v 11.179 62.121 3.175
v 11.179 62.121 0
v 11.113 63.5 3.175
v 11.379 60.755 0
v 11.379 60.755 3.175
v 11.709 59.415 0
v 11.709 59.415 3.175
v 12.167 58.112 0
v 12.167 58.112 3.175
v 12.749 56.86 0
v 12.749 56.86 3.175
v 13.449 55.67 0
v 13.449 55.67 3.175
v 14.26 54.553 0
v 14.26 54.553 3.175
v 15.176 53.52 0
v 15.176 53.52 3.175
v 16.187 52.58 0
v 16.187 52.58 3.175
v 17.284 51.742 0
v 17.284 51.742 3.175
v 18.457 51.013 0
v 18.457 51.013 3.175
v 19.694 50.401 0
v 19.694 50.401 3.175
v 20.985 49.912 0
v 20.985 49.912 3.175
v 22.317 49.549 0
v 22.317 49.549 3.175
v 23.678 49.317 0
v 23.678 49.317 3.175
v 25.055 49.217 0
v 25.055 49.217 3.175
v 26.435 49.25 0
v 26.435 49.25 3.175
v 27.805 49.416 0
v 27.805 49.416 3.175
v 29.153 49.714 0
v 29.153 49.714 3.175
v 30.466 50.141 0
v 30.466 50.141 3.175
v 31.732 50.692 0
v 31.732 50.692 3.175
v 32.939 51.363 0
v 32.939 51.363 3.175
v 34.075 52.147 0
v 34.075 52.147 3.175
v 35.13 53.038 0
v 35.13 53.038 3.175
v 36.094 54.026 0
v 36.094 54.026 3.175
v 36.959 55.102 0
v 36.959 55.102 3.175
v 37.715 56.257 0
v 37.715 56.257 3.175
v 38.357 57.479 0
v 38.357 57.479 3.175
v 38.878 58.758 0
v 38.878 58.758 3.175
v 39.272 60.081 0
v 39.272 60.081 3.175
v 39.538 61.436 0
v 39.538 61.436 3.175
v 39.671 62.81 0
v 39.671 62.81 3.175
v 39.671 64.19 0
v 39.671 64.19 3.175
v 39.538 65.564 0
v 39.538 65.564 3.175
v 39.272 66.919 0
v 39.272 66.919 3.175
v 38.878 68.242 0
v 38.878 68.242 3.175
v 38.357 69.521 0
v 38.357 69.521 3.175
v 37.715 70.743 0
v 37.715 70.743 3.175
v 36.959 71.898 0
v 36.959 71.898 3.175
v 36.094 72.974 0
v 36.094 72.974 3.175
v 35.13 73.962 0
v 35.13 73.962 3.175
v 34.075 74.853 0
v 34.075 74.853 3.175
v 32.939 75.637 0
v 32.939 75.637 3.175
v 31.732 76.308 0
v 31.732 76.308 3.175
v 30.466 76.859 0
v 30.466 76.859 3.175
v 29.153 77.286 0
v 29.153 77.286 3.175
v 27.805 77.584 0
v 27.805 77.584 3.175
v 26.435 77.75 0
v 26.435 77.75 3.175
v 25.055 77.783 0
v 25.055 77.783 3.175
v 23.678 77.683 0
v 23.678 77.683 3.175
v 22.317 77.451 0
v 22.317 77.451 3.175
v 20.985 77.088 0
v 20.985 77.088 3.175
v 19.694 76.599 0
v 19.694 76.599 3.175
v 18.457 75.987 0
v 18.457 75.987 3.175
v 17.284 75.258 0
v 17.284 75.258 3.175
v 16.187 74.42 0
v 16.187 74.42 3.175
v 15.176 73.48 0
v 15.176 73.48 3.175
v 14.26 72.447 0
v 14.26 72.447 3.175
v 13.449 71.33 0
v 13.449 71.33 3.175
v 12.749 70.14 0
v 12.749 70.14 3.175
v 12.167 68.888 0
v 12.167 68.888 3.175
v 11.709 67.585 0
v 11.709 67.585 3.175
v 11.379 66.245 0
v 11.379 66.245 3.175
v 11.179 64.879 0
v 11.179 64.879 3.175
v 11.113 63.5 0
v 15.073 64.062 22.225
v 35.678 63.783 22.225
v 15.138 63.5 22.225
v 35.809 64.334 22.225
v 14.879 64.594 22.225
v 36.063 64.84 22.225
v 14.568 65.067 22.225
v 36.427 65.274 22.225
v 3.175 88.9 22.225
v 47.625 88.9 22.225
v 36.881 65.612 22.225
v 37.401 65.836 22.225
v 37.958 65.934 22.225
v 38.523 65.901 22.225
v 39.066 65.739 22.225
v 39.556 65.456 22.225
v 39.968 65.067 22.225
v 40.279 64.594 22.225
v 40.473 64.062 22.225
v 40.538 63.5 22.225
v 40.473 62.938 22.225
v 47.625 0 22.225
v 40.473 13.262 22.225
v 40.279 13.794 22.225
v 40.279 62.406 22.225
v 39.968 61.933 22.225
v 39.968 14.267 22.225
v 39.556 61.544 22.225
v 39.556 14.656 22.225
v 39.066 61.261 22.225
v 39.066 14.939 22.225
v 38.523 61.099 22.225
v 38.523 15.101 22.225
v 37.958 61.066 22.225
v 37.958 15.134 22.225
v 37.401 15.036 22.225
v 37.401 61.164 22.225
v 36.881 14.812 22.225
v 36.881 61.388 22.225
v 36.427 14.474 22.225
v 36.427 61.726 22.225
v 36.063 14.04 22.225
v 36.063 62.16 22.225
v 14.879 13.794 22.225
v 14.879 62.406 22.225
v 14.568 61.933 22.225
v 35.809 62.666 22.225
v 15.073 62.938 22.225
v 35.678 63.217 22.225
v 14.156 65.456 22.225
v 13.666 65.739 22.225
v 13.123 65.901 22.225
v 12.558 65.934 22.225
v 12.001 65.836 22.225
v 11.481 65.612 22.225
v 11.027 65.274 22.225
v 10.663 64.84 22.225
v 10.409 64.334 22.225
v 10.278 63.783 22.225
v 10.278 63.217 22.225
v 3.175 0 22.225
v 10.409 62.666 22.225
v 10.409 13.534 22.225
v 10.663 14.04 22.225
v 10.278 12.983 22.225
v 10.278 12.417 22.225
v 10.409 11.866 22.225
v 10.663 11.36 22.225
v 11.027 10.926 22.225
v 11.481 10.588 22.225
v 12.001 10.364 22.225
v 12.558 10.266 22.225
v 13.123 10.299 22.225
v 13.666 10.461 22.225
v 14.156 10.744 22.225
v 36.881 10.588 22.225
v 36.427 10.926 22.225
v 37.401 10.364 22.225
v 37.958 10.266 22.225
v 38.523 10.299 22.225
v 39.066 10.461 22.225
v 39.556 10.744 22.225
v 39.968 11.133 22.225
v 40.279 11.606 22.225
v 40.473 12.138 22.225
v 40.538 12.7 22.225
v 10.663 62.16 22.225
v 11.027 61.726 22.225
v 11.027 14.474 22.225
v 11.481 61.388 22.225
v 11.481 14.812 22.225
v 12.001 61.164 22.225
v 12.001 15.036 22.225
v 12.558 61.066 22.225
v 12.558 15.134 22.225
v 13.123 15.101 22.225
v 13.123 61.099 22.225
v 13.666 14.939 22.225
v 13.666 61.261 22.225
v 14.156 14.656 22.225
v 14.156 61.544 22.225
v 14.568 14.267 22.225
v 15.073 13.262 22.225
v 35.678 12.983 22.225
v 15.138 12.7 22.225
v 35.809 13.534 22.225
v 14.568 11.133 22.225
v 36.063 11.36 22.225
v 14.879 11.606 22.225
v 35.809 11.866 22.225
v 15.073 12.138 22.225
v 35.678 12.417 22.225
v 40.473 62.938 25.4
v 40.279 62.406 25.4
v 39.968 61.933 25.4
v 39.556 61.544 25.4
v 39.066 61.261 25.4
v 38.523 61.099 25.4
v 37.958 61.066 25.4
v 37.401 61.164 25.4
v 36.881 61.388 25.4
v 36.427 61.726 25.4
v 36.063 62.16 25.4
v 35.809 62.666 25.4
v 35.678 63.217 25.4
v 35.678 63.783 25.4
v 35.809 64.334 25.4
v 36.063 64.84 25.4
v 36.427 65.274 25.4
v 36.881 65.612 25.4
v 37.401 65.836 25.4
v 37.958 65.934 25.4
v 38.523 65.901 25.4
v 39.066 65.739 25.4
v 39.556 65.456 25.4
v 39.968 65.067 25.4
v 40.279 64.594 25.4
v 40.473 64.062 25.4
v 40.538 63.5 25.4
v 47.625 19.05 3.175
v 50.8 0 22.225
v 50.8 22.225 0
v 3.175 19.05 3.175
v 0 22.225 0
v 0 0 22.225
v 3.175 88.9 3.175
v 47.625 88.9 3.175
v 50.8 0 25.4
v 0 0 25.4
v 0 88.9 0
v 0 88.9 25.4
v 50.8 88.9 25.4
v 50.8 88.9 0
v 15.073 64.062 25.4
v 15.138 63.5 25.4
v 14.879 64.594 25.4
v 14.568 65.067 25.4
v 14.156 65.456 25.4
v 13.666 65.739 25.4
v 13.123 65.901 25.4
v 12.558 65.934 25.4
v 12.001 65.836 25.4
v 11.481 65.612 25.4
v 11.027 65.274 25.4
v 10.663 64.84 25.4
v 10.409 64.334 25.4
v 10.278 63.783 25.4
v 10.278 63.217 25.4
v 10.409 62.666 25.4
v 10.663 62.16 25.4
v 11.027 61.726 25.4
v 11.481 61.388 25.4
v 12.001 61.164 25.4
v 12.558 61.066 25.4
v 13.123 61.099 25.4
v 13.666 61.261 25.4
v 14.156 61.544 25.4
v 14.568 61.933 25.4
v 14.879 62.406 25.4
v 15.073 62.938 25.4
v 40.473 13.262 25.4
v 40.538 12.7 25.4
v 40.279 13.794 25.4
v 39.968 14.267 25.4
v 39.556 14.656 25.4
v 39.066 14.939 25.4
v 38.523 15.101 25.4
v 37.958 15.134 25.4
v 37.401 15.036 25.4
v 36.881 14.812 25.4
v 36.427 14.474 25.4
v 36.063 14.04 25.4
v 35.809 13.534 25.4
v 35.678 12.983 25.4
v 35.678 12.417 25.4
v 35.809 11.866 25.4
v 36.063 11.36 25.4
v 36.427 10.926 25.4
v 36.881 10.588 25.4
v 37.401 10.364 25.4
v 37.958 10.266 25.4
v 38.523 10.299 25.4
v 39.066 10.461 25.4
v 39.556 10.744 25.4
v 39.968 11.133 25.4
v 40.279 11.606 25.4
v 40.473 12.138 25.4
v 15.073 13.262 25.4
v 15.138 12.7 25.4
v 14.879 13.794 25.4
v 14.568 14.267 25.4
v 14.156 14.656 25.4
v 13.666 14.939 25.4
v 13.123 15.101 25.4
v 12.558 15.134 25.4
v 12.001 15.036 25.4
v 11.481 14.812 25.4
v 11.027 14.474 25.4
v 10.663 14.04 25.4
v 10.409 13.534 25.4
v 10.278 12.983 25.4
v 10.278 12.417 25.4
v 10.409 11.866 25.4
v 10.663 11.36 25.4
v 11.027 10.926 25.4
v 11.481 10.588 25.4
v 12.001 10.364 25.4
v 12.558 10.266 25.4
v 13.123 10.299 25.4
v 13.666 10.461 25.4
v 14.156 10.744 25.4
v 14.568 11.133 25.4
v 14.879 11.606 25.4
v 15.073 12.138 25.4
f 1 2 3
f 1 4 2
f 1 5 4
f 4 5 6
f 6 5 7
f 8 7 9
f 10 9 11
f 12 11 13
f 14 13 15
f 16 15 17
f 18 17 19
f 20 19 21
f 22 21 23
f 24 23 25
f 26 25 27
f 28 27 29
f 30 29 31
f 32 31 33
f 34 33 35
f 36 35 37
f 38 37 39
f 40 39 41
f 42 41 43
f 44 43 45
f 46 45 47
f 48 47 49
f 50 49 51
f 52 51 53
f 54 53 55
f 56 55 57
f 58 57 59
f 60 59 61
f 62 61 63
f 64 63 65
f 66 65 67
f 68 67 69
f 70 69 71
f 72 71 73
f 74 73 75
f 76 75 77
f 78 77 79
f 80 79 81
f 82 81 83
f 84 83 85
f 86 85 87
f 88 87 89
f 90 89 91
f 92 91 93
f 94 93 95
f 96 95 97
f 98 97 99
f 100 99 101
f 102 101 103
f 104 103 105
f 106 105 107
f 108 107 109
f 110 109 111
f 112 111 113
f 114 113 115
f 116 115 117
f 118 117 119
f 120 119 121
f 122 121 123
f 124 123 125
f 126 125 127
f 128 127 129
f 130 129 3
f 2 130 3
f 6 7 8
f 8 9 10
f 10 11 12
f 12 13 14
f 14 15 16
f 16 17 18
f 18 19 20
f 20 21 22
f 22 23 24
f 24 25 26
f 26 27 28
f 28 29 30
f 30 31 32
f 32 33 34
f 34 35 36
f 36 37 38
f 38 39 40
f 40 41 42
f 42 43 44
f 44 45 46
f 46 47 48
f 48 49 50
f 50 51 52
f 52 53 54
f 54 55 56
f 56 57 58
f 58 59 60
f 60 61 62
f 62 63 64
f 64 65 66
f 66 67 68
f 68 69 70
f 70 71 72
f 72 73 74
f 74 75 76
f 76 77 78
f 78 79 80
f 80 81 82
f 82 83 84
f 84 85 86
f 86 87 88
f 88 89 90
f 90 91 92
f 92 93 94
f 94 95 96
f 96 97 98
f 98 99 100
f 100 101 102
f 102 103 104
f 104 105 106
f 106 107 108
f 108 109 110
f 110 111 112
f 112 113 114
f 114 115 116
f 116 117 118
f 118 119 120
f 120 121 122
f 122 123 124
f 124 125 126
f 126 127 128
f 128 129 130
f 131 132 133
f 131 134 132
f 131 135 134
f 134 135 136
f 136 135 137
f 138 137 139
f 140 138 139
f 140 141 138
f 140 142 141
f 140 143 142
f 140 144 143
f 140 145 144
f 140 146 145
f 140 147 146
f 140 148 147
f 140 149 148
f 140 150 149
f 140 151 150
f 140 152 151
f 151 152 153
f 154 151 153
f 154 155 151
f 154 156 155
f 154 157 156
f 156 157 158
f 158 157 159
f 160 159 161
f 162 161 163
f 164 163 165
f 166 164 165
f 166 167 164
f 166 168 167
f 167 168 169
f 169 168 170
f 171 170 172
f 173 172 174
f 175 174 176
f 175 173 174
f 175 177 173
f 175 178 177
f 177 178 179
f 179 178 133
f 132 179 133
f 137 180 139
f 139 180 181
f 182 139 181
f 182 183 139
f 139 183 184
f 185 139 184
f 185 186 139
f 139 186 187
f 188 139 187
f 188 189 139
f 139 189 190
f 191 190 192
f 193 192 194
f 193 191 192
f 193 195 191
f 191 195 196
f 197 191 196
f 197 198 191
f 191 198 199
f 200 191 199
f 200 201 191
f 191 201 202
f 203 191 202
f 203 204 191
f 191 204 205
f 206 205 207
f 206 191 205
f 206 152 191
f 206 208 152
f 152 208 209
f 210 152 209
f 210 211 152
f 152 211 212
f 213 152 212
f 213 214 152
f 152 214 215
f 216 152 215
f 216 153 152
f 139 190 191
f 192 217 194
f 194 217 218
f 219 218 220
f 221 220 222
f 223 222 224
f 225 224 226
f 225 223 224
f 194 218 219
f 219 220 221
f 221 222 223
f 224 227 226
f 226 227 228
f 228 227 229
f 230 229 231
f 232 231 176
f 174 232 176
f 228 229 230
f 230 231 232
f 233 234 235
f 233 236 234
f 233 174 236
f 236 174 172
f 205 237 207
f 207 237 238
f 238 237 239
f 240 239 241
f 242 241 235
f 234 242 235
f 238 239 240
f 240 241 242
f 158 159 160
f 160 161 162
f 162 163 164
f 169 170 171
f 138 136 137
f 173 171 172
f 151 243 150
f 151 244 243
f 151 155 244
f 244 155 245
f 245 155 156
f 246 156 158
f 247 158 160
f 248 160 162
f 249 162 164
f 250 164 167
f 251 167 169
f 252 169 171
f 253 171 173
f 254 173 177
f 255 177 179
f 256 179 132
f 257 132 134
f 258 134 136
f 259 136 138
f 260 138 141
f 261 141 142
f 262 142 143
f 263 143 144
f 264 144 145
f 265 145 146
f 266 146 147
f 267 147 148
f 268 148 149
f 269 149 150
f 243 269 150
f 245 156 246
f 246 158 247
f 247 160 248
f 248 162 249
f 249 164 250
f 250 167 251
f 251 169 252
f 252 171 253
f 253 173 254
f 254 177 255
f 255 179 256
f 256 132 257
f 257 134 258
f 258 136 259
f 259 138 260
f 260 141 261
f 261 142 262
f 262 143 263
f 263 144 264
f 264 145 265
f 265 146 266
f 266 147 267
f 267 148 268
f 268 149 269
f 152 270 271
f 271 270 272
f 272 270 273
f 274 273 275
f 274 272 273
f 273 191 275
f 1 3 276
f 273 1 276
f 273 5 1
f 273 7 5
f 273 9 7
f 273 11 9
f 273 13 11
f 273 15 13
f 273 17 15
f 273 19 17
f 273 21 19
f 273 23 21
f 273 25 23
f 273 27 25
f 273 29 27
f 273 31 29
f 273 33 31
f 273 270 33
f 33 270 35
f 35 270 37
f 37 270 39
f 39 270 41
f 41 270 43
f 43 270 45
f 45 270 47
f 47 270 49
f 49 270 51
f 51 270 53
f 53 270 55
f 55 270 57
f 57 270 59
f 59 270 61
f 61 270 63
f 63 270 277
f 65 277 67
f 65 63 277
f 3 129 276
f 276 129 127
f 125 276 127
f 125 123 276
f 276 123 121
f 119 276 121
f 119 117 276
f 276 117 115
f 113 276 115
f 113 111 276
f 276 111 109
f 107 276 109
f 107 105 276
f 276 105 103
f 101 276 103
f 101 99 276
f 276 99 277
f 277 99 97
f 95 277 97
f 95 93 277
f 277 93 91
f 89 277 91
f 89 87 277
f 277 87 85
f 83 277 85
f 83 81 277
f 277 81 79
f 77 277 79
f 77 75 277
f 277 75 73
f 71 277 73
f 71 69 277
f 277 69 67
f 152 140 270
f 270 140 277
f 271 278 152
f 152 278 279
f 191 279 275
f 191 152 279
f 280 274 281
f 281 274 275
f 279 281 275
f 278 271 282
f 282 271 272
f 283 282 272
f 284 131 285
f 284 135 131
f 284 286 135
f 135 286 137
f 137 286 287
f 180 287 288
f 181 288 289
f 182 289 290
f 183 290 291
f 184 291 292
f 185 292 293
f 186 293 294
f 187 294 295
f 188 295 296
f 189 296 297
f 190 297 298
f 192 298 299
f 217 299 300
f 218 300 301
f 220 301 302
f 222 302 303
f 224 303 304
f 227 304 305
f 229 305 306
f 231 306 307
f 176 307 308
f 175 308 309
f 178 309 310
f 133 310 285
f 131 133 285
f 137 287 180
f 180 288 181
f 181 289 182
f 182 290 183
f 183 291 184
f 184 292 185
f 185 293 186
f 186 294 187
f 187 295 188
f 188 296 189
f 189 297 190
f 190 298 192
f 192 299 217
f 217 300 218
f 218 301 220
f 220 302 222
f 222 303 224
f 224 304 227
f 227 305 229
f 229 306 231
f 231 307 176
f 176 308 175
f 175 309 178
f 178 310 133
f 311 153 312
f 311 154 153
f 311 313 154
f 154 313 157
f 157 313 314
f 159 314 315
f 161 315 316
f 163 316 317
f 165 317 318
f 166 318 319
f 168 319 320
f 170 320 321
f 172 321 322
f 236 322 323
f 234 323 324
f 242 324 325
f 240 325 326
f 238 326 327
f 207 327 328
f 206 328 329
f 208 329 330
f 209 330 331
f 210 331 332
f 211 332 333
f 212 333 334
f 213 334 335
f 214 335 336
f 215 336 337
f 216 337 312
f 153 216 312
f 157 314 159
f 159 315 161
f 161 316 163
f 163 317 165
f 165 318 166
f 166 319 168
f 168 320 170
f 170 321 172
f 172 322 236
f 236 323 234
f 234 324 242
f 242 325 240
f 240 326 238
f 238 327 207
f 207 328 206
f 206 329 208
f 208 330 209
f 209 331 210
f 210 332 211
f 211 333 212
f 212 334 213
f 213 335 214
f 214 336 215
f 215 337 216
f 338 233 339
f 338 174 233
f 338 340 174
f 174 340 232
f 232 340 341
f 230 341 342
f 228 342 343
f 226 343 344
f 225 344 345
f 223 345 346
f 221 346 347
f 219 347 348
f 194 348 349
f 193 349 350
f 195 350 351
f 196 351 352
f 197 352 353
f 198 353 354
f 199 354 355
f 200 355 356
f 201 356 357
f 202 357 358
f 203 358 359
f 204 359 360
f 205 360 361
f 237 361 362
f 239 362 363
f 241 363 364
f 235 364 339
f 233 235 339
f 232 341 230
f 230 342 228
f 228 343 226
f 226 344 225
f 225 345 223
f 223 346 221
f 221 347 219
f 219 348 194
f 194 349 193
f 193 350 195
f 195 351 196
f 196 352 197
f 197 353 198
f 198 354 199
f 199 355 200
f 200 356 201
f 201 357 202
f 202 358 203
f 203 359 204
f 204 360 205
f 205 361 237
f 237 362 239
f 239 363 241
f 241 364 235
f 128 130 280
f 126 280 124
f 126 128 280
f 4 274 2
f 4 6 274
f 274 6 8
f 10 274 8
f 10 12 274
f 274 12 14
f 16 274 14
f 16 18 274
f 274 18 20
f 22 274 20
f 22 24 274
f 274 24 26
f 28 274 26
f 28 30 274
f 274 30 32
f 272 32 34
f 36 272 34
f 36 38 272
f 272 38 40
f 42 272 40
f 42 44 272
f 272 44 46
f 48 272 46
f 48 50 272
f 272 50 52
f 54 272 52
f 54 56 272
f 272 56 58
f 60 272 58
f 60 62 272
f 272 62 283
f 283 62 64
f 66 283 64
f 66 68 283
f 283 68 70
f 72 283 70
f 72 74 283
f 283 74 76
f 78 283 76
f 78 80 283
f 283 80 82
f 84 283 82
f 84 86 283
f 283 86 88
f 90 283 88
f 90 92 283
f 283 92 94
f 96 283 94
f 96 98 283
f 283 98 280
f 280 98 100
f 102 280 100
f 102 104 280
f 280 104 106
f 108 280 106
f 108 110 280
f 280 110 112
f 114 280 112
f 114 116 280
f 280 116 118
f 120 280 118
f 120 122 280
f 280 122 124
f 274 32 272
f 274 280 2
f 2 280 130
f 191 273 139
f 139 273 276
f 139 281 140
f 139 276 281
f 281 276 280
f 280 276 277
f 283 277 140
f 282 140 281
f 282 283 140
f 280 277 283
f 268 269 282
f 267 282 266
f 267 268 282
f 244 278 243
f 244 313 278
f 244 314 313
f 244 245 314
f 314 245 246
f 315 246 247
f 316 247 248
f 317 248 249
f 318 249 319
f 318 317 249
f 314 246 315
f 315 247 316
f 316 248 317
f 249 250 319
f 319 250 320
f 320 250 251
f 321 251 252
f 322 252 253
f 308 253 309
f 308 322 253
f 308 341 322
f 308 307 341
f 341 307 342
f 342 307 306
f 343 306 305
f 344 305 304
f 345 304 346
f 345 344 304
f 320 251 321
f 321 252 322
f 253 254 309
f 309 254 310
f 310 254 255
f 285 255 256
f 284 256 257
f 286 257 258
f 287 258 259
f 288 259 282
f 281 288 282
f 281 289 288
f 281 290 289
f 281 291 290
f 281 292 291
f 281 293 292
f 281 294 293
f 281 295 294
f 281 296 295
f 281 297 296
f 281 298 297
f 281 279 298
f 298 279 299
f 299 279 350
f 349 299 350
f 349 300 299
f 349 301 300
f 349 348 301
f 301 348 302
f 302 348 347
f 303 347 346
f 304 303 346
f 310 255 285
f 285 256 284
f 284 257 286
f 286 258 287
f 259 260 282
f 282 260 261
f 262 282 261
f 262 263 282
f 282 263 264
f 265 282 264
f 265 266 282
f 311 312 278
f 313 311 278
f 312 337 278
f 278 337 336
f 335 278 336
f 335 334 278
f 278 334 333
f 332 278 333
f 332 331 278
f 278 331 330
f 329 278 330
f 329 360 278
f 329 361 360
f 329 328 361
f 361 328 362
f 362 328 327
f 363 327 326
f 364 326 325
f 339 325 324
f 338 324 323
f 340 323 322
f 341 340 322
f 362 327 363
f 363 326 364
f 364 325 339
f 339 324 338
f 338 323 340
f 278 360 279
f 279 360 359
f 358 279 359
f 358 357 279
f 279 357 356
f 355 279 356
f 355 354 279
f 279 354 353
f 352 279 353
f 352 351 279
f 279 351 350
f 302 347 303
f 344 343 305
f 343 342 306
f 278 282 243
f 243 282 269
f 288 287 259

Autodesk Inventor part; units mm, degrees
ref_plane "YZ Plane" through (0, 0, 0) normal (1, 0, 0) x (0, 1, 0)
ref_plane "XZ Plane" through (0, 0, 0) normal (0, 1, 0) x (-1, 0, 0)
ref_plane "XY Plane" through (0, 0, 0) normal (0, 0, 1) x (1, 0, 0)
sketch "Sketch1" plane through (0, 0, 0) normal (0, 0, 1) x (1, 0, 0)
  line L0 (0, 0) -> (50.8, 0)
  line L1 (50.8, 0) -> (50.8, 88.9)
  line L2 (50.8, 88.9) -> (0, 88.9)
  line L3 (0, 88.9) -> (0, 0)
  dimension "d0" = 50.8
  dimension "d1" = 88.9
extrude "Extrusion1" add sketch "Sketch1" along normal blind 25.4
shell "Shell1" thickness 3.175 removed faces 2 at (33.8667, 88.9, 8.4667) at (16.9333, 0, 16.9333)
sketch "Sketch2" plane through (0, 0, 25.4) normal (0, 0, 1) x (1, 0, 0)
  line L0 (0, 0) -> (0, 88.9) projected
  line L1 (50.8, 0) -> (0, 0) projected
  line L2 (50.8, 88.9) -> (50.8, 0) projected
  line L3 (12.7, 63.5) -> (38.1, 63.5) construction
  line L4 (38.1, 63.5) -> (38.1, 12.7) construction
  line L5 (38.1, 12.7) -> (12.7, 12.7) construction
  line L6 (12.7, 12.7) -> (12.7, 63.5) construction
  line L7 (12.7, 63.5) -> (0, 63.5) construction
  line L8 (38.1, 63.5) -> (50.8, 63.5) construction
  line L9 (38.1, 12.7) -> (38.1, 0) construction
  circle A0 centre (12.7, 12.7) radius 2.4384
  circle A1 centre (38.1, 12.7) radius 2.4384
  circle A2 centre (38.1, 63.5) radius 2.4384
  circle A3 centre (12.7, 63.5) radius 2.4384
  dimension "d5" = 50.8
  dimension "d6" = 25.4
  dimension "d7" = 12.7
  dimension "d8" = 4.8768
extrude "Extrusion2" cut sketch "Sketch2" against normal up to next
sketch "Sketch3" plane through (50.8, 0, 0) normal (1, 0, 0) x (0, 0, -1)
  line L0 (0, 0) -> (-25.4, 0) projected
  line L1 (0, 0) -> (0, 88.9) projected
  line L2 (-22.225, 0) -> (0, 22.225)
  line L3 (0, 22.225) -> (0, 0)
  line L4 (0, 0) -> (-22.225, 0)
  dimension "d11" = 22.225
  dimension "d12" = 22.225
extrude "Extrusion3" cut sketch "Sketch3" against normal through all
sketch "Sketch5" plane through (0, 0, 0) normal (0, 0, -1) x (-1, 0, 0)
  line L0 (0, 88.9) -> (0, 22.225) projected
  circle A0 centre (-25.4, 63.5) radius 14.2875
  point P0 (0, 0)
  dimension "d19" = 63.5
  dimension "d20" = 28.575
  dimension "d21" = 25.4
extrude "Extrusion5" cut sketch "Sketch5" against normal up to next
properties part number "BearingMount" material "Aluminum-6061"
